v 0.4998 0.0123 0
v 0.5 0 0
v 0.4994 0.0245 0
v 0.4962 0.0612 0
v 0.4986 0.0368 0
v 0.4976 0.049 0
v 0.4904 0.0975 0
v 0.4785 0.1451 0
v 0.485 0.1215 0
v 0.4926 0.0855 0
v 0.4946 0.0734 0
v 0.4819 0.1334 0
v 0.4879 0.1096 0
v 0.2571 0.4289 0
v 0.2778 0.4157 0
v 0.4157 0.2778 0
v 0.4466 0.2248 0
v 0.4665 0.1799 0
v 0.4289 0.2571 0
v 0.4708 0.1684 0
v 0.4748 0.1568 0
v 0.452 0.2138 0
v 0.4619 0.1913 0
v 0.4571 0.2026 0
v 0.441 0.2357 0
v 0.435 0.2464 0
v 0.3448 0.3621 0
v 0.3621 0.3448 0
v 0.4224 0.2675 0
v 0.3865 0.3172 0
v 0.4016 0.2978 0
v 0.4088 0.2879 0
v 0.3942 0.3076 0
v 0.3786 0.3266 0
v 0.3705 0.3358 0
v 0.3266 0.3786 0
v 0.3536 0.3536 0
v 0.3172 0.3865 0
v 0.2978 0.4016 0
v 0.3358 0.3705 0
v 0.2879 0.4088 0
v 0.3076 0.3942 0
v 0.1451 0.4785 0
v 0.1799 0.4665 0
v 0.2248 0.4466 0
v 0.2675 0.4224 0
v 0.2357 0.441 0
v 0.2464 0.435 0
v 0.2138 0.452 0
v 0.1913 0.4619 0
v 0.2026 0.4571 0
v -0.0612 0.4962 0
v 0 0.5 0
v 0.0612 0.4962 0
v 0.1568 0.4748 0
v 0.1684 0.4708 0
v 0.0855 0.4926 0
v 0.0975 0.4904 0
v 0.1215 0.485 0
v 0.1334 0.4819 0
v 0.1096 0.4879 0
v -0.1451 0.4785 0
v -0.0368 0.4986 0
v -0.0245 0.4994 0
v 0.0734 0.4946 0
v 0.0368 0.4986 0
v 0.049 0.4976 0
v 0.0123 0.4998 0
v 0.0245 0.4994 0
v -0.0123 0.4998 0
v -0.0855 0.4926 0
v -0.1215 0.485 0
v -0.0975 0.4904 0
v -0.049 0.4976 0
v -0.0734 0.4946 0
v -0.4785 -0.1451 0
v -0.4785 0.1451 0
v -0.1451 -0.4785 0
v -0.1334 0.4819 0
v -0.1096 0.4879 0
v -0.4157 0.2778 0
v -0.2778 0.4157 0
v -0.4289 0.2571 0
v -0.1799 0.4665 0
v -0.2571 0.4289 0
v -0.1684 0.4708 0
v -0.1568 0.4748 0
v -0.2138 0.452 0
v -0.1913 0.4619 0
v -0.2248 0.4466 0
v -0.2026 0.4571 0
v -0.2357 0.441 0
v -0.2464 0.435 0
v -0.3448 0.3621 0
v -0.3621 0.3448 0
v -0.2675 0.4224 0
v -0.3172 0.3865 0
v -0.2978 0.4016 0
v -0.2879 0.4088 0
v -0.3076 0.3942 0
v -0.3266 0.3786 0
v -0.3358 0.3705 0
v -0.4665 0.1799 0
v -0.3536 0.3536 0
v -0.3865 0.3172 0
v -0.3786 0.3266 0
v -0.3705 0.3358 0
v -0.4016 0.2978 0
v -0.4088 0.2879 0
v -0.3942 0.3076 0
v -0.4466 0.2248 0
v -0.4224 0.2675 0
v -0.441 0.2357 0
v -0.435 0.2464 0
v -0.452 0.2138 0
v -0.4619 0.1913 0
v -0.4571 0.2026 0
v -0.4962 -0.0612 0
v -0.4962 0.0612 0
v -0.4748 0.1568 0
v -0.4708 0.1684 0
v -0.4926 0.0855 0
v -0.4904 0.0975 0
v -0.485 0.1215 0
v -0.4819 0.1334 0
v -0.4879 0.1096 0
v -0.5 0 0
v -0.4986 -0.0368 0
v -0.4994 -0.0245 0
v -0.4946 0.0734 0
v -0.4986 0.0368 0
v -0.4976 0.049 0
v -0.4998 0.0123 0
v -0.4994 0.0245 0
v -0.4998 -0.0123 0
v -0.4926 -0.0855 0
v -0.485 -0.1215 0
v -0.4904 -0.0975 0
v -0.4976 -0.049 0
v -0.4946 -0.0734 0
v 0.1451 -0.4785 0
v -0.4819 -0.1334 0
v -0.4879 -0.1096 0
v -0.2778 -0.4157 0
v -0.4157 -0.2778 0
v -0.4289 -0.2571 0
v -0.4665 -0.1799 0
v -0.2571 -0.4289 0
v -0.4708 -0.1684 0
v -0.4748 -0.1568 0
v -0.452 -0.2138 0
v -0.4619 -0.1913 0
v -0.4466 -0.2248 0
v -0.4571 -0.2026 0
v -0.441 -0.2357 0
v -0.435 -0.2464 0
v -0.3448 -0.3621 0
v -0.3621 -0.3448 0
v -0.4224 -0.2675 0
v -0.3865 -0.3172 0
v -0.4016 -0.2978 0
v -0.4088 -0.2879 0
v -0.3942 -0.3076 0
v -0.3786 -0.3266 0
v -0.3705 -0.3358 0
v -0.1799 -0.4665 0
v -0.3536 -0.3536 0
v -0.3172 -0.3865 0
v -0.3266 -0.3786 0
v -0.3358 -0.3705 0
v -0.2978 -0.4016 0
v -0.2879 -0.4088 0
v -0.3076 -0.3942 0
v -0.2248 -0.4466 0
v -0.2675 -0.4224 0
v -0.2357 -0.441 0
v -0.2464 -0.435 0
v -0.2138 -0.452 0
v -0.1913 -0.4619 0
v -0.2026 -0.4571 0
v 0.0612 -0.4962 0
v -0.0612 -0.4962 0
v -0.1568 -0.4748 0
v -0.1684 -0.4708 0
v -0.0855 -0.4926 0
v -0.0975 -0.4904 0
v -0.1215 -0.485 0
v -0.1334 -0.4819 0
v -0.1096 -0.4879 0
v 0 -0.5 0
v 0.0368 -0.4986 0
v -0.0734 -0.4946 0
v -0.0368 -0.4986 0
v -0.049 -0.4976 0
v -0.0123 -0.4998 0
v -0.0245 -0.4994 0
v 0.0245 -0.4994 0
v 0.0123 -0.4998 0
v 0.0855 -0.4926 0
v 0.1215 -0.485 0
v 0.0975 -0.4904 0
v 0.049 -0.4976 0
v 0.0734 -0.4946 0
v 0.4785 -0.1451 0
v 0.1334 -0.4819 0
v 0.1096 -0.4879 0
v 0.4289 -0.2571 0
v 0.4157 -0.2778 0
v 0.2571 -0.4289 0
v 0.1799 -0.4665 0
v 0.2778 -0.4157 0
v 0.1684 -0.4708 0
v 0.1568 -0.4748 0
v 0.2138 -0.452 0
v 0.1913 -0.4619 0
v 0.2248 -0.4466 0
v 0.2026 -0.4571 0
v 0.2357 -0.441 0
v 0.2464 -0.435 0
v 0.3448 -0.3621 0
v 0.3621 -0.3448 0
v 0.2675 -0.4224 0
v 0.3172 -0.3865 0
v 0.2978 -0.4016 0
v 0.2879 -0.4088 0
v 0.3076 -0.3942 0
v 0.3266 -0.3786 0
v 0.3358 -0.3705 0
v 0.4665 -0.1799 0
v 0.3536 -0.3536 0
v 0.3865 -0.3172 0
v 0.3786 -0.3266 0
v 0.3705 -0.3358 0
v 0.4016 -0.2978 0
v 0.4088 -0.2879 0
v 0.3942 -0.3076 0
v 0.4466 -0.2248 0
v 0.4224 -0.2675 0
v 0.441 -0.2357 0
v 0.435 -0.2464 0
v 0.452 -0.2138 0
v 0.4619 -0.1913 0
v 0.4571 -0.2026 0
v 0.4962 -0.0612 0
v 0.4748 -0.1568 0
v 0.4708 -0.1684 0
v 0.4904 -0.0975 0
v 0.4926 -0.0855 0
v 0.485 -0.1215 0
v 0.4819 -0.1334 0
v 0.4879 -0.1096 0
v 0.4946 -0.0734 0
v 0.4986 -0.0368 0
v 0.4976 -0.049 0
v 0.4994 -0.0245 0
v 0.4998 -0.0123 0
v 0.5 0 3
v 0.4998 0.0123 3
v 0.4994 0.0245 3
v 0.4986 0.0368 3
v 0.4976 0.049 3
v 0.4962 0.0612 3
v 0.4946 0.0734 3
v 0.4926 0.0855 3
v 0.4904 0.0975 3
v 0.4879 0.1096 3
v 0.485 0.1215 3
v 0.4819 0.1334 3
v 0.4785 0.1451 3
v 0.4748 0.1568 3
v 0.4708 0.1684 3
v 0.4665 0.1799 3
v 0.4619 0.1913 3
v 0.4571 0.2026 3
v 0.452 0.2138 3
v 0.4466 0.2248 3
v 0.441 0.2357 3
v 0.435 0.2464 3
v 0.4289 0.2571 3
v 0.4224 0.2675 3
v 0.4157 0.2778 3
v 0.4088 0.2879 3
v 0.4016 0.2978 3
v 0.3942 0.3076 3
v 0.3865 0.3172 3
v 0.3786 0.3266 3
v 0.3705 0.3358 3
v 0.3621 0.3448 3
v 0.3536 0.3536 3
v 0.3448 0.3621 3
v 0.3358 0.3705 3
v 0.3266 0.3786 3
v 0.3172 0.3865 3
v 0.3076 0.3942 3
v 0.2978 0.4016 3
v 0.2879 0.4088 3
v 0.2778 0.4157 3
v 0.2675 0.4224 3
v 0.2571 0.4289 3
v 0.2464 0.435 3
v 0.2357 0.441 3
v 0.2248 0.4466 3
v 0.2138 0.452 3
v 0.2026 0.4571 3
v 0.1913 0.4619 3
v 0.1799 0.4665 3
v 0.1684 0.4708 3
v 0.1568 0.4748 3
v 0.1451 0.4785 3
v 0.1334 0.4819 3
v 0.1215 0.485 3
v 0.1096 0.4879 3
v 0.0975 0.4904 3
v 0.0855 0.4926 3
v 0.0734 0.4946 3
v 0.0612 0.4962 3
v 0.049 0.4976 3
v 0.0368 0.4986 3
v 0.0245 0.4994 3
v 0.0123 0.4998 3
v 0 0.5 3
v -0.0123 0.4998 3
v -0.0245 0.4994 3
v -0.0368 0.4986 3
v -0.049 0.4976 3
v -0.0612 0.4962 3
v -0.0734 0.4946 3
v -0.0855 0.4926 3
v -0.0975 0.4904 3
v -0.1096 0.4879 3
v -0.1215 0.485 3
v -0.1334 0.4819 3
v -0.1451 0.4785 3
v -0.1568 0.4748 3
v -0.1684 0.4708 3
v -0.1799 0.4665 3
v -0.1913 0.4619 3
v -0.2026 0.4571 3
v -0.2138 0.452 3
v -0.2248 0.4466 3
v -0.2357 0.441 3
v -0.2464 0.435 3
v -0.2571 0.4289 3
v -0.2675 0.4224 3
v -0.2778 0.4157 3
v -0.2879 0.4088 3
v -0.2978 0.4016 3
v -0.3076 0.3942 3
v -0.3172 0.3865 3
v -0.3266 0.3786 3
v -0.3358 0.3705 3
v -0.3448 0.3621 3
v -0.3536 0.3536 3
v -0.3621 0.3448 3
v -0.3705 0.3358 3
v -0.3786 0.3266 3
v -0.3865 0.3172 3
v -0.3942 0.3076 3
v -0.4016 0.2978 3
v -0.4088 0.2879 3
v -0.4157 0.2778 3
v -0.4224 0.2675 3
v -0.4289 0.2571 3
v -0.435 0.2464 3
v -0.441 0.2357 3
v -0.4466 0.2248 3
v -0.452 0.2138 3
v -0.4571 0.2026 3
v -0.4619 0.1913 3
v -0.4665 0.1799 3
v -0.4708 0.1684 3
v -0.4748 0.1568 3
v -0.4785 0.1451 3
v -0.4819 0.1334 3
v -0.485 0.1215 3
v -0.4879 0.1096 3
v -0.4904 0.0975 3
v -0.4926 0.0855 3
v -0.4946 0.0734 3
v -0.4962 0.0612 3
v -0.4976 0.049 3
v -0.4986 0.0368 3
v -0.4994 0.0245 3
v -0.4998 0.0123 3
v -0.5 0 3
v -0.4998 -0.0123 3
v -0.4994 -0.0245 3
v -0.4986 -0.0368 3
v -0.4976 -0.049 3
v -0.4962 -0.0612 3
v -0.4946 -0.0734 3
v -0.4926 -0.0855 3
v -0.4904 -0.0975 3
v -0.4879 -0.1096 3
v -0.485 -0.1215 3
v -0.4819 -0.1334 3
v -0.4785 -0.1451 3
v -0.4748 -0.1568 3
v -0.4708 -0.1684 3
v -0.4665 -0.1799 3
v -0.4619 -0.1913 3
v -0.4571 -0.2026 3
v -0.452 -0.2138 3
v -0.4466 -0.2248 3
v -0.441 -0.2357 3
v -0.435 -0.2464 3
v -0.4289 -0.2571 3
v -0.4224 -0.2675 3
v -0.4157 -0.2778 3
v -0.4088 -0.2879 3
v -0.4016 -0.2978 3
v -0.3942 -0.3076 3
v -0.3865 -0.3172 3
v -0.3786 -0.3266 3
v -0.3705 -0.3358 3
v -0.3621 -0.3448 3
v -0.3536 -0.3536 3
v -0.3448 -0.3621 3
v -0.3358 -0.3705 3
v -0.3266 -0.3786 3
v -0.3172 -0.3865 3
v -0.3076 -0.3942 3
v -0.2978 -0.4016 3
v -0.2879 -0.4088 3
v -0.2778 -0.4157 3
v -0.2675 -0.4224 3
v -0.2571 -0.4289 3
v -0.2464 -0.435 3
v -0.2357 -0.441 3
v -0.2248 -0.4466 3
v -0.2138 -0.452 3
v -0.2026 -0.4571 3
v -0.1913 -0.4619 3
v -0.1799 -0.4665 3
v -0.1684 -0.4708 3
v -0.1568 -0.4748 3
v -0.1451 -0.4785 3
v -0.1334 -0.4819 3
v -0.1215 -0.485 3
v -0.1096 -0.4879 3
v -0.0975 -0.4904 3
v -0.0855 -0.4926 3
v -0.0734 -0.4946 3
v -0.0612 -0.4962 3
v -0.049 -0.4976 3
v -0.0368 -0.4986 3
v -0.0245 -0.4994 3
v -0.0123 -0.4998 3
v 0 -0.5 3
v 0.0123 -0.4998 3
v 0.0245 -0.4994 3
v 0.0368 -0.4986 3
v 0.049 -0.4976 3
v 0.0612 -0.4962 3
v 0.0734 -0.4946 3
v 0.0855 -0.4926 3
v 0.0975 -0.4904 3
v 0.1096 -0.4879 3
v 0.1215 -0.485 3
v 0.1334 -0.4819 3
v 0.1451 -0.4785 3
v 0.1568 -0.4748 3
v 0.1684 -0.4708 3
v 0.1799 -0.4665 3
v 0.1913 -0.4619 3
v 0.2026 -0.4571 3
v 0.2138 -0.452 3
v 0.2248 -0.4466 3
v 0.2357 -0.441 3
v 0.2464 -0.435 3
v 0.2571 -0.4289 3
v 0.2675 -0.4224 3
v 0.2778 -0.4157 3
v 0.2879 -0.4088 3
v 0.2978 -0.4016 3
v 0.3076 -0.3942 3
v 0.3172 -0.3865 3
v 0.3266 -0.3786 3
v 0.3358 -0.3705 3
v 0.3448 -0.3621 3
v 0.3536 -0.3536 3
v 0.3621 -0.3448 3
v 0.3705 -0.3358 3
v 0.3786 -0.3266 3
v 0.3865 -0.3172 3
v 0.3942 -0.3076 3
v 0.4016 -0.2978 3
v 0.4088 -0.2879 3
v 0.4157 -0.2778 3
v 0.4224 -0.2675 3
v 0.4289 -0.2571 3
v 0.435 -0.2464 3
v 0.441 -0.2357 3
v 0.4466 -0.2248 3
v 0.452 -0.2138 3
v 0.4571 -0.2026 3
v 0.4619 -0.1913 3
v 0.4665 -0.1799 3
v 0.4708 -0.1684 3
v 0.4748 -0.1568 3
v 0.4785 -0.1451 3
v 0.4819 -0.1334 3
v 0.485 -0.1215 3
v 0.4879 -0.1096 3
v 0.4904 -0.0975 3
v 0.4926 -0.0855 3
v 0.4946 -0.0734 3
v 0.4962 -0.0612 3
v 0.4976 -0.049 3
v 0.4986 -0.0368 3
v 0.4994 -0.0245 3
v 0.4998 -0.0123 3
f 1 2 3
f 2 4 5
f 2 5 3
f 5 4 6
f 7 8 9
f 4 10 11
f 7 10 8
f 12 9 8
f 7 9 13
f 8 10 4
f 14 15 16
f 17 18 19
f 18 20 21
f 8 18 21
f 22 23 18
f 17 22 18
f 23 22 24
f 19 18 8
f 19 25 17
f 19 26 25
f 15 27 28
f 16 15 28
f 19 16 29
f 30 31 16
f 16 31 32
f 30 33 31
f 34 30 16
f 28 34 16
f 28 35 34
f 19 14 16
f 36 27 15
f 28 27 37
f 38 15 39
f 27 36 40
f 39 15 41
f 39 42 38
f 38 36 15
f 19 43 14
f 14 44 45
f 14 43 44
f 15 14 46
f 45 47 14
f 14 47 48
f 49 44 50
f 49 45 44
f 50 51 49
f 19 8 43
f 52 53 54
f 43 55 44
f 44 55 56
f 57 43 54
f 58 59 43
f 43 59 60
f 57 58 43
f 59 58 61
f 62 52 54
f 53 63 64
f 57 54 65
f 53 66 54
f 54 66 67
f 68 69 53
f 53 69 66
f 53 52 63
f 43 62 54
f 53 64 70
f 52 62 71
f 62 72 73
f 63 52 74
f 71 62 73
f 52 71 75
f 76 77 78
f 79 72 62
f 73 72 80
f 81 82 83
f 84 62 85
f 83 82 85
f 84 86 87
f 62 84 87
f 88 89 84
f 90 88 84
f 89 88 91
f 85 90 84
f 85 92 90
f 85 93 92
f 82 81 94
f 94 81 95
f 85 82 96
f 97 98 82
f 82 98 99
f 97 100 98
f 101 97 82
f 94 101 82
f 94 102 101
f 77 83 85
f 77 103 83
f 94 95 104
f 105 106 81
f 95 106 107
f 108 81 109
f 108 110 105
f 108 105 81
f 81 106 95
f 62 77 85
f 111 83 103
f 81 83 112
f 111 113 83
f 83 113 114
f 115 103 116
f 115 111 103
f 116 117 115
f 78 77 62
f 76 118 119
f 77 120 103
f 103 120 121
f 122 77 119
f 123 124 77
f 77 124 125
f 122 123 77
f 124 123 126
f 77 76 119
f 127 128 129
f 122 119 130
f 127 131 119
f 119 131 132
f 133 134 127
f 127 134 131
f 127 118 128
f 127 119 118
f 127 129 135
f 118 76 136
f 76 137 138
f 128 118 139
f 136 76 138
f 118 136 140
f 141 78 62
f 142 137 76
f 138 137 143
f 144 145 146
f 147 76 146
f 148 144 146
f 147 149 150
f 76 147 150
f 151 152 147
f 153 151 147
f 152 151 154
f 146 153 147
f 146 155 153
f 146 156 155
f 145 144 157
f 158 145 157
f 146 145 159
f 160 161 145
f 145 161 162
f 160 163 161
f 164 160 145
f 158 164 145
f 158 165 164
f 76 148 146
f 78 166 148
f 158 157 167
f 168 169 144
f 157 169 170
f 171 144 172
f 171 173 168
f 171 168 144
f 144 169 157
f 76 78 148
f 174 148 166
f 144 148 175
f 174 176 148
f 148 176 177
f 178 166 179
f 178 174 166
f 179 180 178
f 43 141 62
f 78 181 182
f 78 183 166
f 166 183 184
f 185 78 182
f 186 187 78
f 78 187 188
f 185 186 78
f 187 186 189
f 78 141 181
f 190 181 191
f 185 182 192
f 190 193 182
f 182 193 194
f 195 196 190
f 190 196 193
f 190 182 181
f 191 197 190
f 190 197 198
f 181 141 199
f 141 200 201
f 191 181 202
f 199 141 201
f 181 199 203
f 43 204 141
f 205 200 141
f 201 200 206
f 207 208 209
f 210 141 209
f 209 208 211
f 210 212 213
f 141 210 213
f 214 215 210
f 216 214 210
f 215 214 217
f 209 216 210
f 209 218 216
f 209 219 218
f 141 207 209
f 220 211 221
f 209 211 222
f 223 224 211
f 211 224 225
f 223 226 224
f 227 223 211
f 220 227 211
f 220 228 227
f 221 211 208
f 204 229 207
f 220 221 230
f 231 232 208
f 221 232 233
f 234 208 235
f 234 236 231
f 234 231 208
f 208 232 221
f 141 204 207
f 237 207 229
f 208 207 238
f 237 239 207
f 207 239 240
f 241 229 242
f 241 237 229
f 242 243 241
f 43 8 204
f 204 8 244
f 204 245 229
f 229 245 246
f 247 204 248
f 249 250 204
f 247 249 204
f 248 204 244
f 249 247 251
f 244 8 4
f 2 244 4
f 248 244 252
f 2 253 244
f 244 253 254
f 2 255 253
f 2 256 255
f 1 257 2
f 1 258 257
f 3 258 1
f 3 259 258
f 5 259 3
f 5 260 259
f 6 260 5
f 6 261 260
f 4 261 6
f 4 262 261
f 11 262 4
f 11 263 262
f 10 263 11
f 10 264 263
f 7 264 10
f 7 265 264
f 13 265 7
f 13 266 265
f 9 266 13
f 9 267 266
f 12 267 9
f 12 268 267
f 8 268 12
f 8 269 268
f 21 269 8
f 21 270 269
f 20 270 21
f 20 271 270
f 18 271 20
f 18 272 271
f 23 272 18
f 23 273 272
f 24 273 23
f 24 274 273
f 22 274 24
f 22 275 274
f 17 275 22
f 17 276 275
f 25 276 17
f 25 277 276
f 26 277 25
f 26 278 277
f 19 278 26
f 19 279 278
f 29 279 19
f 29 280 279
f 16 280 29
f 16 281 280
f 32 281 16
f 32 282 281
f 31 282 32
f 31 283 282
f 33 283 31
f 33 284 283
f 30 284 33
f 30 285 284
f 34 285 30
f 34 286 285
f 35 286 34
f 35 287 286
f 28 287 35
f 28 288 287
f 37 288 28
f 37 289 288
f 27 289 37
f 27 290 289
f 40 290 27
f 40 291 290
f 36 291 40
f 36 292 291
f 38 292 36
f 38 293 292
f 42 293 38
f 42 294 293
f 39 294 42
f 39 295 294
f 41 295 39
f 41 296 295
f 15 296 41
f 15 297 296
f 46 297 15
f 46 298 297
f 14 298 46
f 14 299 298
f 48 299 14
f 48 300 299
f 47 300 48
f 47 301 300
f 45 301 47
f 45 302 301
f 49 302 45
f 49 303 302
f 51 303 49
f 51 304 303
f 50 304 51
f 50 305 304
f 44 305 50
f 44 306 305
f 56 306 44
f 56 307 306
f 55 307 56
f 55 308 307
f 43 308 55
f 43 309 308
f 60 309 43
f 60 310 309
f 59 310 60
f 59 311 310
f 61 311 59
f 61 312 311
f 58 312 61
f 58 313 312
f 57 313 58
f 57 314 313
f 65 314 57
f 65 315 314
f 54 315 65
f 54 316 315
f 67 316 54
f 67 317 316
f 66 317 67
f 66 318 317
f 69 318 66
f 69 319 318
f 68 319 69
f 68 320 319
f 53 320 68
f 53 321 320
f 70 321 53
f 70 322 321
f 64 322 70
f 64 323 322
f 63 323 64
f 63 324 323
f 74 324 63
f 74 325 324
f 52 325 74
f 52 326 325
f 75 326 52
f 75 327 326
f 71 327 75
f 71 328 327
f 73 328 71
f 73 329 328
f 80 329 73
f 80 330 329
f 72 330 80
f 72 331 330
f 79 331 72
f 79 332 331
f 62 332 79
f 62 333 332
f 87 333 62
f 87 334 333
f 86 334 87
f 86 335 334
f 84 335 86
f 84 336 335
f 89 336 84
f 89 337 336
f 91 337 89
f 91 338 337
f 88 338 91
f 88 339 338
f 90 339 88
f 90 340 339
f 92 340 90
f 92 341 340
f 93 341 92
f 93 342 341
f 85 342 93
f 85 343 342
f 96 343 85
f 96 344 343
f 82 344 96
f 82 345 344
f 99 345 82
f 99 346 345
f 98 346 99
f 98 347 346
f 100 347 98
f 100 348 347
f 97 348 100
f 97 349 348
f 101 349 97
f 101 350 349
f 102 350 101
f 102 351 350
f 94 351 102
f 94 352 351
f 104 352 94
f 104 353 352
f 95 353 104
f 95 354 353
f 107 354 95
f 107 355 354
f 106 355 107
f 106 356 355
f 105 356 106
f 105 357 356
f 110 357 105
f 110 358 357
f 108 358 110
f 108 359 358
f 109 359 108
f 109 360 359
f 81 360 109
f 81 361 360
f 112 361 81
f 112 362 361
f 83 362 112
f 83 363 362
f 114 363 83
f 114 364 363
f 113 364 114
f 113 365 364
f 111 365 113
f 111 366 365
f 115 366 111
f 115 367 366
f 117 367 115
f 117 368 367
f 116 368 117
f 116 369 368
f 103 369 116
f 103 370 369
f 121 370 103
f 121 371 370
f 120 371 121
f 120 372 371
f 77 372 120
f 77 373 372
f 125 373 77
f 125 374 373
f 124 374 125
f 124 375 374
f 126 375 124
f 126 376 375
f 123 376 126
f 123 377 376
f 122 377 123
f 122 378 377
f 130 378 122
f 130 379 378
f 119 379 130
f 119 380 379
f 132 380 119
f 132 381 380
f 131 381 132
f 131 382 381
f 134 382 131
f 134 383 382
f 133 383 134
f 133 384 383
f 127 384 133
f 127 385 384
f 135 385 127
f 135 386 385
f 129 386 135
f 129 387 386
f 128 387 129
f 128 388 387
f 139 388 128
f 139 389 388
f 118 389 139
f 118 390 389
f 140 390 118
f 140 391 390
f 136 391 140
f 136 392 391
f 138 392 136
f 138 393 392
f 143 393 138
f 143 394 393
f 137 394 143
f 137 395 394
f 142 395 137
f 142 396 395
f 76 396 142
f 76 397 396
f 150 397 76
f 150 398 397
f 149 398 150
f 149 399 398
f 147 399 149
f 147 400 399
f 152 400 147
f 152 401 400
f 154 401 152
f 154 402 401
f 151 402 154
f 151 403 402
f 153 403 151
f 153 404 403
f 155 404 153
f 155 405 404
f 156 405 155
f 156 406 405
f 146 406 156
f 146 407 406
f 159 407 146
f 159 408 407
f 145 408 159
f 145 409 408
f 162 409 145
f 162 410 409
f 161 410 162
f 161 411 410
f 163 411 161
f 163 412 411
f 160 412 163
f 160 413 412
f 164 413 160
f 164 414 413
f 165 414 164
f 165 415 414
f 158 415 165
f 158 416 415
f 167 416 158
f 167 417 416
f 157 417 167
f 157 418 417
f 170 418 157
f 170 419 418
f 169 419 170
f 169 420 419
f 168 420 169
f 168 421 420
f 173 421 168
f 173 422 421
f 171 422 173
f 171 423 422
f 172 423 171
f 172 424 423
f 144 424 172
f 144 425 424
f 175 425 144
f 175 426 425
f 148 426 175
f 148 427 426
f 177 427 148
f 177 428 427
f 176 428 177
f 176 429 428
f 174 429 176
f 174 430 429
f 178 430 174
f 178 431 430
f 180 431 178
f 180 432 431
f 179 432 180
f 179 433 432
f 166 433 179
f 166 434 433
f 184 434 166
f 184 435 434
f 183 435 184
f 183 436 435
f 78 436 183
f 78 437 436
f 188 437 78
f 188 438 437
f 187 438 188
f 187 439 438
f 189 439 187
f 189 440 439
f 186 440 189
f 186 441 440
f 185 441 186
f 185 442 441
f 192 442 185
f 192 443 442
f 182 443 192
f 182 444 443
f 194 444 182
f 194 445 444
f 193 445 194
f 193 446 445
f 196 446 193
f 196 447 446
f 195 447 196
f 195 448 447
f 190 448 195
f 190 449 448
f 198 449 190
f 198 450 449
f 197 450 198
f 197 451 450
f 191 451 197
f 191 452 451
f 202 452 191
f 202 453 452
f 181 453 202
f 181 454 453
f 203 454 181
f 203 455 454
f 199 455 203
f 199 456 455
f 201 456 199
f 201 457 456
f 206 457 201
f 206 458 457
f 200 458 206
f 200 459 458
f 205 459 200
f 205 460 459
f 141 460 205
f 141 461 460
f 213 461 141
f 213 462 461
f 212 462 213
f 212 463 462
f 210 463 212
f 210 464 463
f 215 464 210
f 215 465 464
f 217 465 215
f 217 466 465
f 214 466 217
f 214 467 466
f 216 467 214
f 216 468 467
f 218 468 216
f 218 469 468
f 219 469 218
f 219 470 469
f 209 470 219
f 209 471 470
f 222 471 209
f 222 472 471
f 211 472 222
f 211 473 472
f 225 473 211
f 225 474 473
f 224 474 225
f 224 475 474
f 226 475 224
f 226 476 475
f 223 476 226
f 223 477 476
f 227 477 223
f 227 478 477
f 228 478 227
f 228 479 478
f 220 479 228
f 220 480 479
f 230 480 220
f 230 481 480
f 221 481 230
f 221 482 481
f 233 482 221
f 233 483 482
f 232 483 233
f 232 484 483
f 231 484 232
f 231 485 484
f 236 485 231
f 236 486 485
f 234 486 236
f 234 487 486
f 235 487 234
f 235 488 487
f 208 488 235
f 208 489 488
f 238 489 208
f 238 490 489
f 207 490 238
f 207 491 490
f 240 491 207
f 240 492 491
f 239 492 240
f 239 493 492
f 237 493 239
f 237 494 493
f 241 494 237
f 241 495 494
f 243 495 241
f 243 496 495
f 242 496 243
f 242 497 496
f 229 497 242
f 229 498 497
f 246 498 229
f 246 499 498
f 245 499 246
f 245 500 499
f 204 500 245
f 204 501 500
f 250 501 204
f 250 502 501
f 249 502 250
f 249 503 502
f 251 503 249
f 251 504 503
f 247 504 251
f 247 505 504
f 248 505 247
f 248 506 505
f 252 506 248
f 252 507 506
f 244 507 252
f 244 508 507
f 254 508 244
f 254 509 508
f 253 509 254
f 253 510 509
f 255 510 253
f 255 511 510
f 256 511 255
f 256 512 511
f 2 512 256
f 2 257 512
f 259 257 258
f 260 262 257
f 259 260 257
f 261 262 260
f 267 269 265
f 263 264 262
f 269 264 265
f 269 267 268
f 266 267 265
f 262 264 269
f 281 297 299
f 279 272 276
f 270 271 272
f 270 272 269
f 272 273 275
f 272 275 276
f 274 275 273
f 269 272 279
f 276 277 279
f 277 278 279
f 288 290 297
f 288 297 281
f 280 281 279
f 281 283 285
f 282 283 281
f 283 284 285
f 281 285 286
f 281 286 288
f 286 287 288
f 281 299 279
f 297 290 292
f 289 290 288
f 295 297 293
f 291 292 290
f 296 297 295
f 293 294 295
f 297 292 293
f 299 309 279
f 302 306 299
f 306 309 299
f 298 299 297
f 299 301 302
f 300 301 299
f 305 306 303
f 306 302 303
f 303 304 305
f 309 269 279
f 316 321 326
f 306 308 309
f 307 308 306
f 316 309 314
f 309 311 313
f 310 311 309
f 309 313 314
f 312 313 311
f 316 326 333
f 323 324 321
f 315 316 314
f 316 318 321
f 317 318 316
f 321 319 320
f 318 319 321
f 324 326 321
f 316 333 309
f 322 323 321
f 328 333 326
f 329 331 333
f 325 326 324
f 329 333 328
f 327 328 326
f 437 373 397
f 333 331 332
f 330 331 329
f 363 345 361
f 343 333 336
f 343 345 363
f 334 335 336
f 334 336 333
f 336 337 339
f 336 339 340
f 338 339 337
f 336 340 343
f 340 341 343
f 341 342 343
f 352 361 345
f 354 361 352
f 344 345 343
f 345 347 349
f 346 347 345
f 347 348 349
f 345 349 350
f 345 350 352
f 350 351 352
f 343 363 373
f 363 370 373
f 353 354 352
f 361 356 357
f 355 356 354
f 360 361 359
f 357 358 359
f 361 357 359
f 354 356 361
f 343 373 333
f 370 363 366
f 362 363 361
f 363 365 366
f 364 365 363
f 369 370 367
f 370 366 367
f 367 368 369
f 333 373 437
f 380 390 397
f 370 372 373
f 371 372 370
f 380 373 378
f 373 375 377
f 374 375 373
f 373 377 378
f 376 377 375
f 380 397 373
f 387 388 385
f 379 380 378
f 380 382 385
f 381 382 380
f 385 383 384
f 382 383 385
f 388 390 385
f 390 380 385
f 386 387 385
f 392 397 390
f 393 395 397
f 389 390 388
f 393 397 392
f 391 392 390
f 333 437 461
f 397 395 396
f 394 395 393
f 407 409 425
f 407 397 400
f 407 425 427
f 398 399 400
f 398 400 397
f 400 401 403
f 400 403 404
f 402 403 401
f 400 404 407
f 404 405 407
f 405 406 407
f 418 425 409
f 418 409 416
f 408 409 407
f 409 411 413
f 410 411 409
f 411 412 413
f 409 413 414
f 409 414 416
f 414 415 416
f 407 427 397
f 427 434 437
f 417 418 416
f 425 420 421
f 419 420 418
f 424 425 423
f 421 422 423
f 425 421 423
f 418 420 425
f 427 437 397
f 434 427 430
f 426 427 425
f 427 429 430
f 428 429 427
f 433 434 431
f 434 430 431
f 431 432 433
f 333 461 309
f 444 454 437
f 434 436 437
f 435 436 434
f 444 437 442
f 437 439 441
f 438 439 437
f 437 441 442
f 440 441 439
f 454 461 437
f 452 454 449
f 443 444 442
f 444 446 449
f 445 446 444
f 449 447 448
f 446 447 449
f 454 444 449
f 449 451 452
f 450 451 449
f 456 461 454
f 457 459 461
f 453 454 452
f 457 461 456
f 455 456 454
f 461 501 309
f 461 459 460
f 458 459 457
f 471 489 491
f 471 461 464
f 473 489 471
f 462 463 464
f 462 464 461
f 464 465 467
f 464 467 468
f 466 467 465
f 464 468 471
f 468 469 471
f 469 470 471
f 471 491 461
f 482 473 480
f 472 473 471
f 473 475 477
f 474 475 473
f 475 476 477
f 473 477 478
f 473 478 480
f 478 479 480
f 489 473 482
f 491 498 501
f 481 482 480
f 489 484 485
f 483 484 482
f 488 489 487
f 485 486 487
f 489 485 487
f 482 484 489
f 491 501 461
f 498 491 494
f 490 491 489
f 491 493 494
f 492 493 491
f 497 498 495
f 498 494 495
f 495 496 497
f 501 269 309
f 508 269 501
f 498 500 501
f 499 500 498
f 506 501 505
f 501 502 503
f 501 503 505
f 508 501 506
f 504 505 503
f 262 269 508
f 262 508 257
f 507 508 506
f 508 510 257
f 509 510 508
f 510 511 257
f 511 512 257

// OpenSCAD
// Cylinder for Stacks of Shapes
// by Slashee the Cow
$fn = 256;

color("Teal")
linear_extrude(3)
    circle(d=1);
